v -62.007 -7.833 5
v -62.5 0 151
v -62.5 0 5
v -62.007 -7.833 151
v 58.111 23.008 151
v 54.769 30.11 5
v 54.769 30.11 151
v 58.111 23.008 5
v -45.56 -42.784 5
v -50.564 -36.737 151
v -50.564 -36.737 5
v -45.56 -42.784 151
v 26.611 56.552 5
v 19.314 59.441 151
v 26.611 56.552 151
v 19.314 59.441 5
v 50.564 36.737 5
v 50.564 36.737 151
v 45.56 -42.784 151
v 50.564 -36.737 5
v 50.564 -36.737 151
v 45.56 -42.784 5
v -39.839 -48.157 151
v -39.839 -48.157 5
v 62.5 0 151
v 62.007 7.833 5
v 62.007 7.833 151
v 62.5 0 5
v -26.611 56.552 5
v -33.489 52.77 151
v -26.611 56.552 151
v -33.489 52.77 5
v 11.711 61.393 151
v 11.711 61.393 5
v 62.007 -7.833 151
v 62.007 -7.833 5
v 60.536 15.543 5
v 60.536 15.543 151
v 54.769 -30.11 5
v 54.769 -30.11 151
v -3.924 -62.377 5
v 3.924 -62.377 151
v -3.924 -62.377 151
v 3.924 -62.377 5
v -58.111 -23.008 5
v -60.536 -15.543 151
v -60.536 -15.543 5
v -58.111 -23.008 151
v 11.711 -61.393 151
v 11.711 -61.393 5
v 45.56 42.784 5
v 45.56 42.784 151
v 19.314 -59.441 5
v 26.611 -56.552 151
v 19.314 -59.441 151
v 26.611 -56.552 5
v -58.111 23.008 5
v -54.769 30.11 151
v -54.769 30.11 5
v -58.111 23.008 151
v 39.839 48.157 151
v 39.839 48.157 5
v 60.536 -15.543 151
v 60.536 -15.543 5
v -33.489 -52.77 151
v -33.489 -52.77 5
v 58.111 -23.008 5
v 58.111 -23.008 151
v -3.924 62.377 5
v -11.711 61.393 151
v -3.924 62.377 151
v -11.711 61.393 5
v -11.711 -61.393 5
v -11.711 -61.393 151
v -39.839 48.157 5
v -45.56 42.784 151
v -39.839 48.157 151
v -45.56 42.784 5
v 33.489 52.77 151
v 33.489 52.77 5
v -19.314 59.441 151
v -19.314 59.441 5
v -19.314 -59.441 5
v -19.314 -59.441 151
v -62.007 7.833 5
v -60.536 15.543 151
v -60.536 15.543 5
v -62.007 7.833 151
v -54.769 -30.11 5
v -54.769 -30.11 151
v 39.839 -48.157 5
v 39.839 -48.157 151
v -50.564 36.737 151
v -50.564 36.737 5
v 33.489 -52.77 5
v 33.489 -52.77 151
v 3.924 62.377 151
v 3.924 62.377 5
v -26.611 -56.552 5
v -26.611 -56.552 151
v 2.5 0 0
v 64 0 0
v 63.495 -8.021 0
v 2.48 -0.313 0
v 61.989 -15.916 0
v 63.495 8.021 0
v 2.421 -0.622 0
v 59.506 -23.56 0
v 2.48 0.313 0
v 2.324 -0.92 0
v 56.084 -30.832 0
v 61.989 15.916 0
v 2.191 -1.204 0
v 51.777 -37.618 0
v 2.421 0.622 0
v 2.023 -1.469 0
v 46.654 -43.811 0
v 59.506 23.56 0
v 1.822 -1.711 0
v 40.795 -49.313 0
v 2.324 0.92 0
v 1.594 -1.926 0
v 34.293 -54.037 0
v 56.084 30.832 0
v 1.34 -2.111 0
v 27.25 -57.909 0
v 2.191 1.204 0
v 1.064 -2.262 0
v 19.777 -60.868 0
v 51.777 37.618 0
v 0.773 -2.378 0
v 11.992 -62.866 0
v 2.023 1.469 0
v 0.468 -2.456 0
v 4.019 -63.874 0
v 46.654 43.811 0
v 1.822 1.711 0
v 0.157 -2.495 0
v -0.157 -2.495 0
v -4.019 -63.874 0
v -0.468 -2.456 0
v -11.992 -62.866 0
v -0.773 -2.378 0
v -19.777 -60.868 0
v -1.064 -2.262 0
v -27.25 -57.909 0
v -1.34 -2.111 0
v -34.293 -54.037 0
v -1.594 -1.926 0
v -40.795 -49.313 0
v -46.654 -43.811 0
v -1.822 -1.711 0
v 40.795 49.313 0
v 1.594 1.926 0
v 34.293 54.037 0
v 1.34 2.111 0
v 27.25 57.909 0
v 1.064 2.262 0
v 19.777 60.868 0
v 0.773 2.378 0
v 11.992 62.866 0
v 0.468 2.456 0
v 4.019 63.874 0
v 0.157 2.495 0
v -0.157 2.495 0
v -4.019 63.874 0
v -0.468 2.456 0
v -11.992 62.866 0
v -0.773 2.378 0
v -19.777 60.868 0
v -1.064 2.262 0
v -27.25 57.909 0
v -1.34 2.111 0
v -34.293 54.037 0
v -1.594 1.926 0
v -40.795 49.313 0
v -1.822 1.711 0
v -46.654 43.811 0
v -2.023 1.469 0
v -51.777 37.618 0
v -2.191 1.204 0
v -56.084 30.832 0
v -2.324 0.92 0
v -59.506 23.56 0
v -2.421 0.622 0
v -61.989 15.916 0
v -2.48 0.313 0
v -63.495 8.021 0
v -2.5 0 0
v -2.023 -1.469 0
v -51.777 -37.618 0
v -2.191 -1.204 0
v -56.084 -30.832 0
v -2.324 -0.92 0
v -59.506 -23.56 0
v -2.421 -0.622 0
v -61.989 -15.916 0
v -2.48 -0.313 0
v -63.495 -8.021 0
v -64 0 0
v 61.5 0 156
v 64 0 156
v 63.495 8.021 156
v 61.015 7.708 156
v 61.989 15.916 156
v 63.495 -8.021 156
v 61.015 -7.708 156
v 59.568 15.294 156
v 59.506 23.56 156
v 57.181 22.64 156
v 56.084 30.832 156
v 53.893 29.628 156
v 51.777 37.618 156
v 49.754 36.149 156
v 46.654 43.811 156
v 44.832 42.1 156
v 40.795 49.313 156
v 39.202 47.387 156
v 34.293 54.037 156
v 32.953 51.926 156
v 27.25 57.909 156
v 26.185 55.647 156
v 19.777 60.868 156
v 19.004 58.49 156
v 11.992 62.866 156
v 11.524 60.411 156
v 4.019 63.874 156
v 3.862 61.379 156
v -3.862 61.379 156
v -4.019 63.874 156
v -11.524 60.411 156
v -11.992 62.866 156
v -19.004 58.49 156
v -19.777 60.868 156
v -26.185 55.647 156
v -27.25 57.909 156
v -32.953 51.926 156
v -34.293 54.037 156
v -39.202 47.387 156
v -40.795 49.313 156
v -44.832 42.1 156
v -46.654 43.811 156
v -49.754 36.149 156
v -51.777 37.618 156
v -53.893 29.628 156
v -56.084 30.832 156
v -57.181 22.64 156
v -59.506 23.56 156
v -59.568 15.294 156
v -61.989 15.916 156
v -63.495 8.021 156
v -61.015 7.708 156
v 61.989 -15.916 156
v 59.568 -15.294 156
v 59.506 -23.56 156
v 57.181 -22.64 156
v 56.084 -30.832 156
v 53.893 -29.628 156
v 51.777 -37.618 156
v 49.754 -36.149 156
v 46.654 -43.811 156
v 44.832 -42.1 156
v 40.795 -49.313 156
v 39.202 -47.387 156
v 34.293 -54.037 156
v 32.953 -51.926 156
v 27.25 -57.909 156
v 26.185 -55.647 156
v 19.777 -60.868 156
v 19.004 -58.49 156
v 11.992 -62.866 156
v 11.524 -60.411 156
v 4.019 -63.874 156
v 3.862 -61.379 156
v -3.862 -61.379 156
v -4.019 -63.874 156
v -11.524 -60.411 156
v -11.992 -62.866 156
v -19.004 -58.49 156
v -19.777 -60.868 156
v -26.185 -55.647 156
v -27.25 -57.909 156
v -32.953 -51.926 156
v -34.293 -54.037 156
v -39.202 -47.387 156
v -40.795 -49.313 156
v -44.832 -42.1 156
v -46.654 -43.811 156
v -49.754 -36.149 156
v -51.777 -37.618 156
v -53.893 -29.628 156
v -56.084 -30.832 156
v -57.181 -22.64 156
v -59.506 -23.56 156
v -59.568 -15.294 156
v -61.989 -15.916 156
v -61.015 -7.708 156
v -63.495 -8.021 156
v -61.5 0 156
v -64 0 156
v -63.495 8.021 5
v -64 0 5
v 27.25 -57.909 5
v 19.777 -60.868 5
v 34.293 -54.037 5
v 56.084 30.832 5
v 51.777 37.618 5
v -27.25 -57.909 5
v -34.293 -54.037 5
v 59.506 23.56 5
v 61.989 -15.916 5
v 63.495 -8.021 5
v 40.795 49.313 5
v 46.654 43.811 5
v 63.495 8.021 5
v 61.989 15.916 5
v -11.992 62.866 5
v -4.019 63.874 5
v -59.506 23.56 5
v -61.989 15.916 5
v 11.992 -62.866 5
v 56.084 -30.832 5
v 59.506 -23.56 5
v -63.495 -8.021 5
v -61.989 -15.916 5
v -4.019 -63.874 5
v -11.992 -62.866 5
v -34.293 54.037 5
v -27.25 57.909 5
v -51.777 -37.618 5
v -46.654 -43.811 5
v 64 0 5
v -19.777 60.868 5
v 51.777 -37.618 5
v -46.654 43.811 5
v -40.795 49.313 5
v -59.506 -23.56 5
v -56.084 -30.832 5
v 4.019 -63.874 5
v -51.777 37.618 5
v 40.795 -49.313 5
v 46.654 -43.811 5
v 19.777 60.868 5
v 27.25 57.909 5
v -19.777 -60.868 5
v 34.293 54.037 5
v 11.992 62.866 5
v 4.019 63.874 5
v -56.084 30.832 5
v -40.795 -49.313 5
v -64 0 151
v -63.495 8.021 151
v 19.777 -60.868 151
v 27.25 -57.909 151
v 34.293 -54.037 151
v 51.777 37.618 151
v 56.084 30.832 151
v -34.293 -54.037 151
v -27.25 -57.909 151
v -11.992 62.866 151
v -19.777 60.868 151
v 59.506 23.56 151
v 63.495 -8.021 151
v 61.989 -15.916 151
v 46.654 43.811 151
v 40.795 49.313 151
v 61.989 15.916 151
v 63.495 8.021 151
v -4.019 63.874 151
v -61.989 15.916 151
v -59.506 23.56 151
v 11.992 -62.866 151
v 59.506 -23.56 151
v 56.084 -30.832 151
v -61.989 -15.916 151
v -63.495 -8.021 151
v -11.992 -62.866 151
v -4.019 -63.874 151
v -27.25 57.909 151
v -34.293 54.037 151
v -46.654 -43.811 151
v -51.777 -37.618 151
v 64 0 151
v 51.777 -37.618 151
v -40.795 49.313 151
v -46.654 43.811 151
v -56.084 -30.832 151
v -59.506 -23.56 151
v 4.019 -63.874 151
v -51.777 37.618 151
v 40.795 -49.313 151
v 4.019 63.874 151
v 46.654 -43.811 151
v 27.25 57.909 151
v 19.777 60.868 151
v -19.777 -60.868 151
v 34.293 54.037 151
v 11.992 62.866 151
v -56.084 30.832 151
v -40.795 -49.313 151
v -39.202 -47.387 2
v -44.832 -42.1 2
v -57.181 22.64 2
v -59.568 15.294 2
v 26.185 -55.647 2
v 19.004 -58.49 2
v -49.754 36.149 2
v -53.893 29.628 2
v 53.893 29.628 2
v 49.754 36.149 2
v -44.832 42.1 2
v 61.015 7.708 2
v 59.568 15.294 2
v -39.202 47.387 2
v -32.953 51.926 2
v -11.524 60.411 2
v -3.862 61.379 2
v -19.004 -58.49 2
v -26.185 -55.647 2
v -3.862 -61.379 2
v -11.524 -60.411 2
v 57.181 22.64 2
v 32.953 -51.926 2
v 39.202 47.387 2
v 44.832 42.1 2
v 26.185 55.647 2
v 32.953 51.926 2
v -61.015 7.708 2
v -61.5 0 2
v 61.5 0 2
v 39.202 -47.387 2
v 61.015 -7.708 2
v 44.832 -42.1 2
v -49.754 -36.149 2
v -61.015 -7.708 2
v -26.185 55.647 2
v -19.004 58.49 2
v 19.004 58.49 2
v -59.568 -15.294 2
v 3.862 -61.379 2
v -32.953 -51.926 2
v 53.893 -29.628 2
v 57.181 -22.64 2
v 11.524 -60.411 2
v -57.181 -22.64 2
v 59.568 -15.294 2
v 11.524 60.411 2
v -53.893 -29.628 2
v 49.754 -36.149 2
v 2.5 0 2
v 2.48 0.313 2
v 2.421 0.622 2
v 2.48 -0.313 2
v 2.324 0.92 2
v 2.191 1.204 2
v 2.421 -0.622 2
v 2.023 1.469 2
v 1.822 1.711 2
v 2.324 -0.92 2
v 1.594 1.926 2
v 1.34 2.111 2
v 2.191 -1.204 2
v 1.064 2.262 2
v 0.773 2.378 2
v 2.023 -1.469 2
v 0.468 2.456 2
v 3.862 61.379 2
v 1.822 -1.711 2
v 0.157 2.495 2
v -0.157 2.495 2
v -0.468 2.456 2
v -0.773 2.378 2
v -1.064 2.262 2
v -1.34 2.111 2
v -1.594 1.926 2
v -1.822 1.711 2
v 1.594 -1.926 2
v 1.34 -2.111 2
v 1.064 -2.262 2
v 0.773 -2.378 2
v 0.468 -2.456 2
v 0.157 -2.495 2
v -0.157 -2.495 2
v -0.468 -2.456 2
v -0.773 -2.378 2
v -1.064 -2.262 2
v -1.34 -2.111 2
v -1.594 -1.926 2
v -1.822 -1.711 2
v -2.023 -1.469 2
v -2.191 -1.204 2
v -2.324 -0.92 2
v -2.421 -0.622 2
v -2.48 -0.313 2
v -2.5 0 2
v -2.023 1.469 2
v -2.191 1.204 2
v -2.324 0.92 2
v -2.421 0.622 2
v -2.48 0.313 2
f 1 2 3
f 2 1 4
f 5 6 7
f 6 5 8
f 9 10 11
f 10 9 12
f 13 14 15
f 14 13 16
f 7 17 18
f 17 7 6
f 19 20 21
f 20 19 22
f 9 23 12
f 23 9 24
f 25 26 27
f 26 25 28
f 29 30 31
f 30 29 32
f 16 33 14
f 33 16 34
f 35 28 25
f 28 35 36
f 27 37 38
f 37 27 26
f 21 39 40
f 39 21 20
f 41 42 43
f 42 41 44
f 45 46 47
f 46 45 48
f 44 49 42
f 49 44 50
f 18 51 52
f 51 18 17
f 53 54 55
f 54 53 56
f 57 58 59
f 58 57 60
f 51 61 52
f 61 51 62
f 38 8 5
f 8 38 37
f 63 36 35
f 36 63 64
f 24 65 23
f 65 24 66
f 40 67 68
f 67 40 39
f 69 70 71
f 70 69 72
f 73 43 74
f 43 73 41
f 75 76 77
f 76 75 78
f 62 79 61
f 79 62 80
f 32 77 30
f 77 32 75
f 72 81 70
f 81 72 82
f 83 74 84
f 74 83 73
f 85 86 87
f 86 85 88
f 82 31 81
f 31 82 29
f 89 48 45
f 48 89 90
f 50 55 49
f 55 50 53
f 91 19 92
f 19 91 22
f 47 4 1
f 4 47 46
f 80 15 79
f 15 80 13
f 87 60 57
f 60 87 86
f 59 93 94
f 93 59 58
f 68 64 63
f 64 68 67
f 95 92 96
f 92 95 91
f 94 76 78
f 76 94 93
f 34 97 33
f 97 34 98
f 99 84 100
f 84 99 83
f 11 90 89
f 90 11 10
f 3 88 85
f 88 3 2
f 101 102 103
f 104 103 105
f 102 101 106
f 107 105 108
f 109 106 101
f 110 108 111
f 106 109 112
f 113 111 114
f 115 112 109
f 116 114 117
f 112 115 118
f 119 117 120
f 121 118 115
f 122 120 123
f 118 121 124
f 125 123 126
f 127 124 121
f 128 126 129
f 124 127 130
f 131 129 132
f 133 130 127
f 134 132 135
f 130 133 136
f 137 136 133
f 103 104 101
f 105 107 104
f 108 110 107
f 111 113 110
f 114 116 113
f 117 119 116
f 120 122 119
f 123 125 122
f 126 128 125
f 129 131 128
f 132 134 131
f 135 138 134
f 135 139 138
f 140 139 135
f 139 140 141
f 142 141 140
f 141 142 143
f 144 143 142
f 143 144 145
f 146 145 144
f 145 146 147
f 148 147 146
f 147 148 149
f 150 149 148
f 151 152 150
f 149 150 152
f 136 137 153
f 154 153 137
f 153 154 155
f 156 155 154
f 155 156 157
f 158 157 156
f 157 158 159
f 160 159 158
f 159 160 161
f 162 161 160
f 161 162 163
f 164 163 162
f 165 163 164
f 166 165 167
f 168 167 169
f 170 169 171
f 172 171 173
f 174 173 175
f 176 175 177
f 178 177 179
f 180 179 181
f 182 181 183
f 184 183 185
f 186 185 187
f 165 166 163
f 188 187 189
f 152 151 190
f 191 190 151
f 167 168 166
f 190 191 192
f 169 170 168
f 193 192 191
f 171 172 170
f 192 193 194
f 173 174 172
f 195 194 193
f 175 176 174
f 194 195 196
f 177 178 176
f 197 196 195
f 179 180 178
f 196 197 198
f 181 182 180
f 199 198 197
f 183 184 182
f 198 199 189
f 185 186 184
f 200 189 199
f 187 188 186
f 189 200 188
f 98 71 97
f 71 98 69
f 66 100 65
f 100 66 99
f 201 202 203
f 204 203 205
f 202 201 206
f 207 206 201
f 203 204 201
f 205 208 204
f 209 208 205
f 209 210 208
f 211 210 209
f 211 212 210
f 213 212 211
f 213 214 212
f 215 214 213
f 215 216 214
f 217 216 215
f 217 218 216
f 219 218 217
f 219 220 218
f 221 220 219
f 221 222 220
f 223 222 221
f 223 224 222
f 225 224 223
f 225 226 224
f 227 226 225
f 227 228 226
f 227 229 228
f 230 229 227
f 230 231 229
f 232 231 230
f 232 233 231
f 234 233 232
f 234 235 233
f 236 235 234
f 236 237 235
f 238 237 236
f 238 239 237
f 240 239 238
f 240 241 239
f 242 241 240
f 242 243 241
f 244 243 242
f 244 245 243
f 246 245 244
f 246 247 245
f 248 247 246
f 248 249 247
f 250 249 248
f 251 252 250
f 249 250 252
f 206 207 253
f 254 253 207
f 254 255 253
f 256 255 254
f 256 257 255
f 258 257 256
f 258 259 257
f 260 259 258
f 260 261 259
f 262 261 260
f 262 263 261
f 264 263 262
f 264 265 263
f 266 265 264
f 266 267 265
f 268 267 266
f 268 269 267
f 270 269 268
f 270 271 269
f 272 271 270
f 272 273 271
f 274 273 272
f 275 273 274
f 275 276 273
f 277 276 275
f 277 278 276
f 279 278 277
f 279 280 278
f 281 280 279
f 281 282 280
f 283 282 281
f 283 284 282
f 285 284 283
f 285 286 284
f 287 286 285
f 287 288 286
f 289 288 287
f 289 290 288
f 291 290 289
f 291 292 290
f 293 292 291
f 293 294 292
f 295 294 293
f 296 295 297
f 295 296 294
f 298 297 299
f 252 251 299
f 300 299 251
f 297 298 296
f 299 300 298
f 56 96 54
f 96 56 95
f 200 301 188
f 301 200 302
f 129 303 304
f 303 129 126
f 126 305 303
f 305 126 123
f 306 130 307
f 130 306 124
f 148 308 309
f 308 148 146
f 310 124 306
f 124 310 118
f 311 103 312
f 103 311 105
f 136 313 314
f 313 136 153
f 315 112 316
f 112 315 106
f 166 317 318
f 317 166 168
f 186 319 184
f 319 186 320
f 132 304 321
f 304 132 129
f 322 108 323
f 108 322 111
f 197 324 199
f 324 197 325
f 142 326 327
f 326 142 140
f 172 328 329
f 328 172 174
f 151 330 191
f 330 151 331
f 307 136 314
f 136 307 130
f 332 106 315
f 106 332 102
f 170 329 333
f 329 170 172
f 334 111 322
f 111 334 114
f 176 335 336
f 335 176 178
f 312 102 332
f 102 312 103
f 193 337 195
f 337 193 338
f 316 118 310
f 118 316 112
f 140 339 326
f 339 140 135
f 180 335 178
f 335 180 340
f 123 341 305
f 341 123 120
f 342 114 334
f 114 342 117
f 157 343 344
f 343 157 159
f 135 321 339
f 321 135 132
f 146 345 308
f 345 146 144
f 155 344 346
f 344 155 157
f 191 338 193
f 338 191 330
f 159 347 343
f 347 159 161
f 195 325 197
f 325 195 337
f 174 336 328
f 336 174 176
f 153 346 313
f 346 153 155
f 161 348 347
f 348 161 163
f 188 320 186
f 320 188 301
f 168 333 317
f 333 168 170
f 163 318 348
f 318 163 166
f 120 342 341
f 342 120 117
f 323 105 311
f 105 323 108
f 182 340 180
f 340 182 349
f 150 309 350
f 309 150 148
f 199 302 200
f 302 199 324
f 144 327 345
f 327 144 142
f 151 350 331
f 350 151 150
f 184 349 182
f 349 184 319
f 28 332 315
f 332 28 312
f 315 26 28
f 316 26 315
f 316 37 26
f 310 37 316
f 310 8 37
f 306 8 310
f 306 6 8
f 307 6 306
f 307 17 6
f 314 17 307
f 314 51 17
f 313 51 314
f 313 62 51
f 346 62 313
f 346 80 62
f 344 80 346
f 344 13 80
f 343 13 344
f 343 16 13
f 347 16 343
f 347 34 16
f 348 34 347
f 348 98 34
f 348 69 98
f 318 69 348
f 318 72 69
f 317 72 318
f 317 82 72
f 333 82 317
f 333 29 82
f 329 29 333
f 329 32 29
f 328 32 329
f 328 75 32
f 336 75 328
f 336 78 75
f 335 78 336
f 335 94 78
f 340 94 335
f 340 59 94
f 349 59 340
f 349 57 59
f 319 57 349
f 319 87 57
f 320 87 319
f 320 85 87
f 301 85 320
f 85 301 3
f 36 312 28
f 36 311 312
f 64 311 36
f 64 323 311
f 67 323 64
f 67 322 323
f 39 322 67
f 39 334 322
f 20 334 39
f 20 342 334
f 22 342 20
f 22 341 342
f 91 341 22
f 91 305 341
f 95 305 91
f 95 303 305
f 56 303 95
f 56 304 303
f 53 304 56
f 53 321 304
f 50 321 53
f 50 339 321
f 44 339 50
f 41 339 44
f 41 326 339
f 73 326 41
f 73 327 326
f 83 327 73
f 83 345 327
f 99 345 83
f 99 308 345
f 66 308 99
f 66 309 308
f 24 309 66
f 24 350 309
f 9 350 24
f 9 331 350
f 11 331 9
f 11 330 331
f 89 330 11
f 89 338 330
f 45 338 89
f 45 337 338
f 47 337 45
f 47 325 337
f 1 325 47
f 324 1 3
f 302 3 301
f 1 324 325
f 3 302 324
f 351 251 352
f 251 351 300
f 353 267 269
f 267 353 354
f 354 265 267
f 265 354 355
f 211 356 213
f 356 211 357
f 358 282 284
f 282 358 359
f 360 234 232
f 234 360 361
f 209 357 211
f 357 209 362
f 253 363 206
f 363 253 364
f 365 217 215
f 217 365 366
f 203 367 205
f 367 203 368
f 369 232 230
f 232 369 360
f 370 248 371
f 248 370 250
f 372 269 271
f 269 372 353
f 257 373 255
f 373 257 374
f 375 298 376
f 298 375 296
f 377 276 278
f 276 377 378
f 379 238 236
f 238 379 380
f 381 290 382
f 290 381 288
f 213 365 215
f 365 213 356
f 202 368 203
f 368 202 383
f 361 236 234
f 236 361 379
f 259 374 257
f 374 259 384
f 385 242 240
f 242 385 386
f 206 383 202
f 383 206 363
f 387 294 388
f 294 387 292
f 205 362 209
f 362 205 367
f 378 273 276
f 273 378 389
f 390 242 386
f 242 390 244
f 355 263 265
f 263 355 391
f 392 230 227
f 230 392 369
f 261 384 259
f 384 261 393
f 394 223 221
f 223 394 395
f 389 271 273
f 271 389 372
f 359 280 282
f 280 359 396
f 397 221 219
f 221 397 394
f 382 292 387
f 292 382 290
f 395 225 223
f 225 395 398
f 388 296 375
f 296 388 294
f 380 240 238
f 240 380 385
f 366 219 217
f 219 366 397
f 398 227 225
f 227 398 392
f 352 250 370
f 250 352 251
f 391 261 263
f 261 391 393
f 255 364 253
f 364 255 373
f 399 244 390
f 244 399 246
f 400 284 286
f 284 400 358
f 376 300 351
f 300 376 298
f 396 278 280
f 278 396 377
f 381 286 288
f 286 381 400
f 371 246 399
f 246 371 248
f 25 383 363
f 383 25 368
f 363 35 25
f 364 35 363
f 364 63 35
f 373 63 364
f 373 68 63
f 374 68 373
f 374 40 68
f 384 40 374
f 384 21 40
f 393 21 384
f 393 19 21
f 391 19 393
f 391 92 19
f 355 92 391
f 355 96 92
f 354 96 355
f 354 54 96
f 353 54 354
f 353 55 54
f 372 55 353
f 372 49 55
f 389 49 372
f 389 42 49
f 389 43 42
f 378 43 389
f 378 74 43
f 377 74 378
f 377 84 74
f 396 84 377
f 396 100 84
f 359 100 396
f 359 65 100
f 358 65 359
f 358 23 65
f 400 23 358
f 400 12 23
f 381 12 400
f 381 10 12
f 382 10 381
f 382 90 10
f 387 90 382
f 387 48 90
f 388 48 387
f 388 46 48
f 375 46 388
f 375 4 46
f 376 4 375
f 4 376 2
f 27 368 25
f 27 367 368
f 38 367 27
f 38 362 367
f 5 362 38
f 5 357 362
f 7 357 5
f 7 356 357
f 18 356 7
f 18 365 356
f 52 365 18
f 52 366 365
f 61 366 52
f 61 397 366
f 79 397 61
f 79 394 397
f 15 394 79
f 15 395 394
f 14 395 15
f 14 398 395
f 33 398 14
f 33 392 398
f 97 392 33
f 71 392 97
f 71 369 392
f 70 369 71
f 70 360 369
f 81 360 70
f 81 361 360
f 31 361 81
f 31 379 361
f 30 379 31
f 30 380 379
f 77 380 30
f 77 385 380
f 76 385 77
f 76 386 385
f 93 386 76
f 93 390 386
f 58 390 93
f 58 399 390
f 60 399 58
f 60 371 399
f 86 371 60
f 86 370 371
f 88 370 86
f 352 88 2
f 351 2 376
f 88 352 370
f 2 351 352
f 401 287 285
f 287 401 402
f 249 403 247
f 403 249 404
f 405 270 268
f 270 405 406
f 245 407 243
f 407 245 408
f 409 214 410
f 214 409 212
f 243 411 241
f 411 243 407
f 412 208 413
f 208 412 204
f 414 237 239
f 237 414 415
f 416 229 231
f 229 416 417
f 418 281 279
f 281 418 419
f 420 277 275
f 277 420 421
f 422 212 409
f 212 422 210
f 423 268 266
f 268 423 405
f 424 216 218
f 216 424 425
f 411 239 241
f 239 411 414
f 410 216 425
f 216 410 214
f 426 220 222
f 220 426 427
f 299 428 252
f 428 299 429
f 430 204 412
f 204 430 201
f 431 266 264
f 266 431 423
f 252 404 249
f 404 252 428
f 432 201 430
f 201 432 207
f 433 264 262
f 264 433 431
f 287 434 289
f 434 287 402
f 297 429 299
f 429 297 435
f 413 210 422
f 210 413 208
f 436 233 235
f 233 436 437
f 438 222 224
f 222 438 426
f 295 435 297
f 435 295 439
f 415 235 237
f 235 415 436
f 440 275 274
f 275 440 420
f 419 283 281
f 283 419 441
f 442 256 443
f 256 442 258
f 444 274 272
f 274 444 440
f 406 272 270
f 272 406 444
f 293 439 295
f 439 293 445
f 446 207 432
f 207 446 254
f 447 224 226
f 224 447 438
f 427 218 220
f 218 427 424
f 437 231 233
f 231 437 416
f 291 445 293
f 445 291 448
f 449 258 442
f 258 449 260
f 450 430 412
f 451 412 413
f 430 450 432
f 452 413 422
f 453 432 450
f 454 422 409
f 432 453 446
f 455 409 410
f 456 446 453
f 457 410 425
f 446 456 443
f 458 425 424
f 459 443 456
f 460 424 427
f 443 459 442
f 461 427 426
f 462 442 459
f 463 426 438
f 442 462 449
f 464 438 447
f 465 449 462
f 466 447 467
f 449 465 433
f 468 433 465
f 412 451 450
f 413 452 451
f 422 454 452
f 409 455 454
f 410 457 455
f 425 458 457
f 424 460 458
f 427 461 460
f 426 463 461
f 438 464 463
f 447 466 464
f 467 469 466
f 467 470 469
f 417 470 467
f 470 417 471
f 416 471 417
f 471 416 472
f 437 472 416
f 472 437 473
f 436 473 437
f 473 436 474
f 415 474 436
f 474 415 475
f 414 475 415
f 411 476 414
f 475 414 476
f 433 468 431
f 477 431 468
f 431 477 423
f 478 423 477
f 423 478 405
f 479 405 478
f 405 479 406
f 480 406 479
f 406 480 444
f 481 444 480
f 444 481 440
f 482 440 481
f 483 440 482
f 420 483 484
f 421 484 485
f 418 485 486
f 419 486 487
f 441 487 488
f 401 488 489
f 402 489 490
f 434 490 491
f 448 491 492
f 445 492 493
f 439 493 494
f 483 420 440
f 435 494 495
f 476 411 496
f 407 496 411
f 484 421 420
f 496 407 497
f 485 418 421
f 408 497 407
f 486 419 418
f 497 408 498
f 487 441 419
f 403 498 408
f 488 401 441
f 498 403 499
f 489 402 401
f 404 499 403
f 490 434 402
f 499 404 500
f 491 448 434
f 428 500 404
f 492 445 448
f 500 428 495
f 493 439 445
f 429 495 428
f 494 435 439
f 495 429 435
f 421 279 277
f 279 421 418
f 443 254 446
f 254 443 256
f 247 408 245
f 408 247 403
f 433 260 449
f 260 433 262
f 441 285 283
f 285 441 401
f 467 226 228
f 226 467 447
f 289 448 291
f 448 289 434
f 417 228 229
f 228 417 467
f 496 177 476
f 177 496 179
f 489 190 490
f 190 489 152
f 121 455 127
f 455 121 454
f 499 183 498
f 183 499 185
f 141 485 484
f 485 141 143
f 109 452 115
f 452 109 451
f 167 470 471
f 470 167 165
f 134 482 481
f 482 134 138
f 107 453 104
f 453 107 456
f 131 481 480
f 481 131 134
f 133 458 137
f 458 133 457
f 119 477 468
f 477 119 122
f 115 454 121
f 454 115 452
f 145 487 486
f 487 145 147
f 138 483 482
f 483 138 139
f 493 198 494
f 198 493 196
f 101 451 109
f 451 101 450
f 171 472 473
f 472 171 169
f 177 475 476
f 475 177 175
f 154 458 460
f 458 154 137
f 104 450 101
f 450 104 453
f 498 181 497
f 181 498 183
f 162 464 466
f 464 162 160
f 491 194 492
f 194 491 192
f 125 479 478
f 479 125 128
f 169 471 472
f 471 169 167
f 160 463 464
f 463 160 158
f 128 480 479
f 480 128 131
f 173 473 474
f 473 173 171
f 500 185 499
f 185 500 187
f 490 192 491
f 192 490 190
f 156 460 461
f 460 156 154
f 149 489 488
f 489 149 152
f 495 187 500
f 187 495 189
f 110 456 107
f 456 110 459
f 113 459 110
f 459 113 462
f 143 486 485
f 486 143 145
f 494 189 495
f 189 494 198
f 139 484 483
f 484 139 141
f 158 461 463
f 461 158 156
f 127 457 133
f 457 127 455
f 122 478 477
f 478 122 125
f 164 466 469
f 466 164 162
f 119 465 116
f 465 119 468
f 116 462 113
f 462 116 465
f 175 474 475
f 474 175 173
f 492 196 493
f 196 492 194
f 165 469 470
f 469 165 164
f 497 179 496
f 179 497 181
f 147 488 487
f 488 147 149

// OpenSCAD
$fn=50;
ht=156;
hb=5;
diam=123;
wall=2;
difference() {
    union() {
        cylinder(ht,d=diam+2);
        cylinder(hb,d=diam+5);
        translate([0,0,ht-hb]) cylinder(hb,d=diam+5);
    }
    translate([0,0,2]) cylinder(ht,d=diam);
    #translate([0,0,0]) cylinder(ht,d=5);
}
